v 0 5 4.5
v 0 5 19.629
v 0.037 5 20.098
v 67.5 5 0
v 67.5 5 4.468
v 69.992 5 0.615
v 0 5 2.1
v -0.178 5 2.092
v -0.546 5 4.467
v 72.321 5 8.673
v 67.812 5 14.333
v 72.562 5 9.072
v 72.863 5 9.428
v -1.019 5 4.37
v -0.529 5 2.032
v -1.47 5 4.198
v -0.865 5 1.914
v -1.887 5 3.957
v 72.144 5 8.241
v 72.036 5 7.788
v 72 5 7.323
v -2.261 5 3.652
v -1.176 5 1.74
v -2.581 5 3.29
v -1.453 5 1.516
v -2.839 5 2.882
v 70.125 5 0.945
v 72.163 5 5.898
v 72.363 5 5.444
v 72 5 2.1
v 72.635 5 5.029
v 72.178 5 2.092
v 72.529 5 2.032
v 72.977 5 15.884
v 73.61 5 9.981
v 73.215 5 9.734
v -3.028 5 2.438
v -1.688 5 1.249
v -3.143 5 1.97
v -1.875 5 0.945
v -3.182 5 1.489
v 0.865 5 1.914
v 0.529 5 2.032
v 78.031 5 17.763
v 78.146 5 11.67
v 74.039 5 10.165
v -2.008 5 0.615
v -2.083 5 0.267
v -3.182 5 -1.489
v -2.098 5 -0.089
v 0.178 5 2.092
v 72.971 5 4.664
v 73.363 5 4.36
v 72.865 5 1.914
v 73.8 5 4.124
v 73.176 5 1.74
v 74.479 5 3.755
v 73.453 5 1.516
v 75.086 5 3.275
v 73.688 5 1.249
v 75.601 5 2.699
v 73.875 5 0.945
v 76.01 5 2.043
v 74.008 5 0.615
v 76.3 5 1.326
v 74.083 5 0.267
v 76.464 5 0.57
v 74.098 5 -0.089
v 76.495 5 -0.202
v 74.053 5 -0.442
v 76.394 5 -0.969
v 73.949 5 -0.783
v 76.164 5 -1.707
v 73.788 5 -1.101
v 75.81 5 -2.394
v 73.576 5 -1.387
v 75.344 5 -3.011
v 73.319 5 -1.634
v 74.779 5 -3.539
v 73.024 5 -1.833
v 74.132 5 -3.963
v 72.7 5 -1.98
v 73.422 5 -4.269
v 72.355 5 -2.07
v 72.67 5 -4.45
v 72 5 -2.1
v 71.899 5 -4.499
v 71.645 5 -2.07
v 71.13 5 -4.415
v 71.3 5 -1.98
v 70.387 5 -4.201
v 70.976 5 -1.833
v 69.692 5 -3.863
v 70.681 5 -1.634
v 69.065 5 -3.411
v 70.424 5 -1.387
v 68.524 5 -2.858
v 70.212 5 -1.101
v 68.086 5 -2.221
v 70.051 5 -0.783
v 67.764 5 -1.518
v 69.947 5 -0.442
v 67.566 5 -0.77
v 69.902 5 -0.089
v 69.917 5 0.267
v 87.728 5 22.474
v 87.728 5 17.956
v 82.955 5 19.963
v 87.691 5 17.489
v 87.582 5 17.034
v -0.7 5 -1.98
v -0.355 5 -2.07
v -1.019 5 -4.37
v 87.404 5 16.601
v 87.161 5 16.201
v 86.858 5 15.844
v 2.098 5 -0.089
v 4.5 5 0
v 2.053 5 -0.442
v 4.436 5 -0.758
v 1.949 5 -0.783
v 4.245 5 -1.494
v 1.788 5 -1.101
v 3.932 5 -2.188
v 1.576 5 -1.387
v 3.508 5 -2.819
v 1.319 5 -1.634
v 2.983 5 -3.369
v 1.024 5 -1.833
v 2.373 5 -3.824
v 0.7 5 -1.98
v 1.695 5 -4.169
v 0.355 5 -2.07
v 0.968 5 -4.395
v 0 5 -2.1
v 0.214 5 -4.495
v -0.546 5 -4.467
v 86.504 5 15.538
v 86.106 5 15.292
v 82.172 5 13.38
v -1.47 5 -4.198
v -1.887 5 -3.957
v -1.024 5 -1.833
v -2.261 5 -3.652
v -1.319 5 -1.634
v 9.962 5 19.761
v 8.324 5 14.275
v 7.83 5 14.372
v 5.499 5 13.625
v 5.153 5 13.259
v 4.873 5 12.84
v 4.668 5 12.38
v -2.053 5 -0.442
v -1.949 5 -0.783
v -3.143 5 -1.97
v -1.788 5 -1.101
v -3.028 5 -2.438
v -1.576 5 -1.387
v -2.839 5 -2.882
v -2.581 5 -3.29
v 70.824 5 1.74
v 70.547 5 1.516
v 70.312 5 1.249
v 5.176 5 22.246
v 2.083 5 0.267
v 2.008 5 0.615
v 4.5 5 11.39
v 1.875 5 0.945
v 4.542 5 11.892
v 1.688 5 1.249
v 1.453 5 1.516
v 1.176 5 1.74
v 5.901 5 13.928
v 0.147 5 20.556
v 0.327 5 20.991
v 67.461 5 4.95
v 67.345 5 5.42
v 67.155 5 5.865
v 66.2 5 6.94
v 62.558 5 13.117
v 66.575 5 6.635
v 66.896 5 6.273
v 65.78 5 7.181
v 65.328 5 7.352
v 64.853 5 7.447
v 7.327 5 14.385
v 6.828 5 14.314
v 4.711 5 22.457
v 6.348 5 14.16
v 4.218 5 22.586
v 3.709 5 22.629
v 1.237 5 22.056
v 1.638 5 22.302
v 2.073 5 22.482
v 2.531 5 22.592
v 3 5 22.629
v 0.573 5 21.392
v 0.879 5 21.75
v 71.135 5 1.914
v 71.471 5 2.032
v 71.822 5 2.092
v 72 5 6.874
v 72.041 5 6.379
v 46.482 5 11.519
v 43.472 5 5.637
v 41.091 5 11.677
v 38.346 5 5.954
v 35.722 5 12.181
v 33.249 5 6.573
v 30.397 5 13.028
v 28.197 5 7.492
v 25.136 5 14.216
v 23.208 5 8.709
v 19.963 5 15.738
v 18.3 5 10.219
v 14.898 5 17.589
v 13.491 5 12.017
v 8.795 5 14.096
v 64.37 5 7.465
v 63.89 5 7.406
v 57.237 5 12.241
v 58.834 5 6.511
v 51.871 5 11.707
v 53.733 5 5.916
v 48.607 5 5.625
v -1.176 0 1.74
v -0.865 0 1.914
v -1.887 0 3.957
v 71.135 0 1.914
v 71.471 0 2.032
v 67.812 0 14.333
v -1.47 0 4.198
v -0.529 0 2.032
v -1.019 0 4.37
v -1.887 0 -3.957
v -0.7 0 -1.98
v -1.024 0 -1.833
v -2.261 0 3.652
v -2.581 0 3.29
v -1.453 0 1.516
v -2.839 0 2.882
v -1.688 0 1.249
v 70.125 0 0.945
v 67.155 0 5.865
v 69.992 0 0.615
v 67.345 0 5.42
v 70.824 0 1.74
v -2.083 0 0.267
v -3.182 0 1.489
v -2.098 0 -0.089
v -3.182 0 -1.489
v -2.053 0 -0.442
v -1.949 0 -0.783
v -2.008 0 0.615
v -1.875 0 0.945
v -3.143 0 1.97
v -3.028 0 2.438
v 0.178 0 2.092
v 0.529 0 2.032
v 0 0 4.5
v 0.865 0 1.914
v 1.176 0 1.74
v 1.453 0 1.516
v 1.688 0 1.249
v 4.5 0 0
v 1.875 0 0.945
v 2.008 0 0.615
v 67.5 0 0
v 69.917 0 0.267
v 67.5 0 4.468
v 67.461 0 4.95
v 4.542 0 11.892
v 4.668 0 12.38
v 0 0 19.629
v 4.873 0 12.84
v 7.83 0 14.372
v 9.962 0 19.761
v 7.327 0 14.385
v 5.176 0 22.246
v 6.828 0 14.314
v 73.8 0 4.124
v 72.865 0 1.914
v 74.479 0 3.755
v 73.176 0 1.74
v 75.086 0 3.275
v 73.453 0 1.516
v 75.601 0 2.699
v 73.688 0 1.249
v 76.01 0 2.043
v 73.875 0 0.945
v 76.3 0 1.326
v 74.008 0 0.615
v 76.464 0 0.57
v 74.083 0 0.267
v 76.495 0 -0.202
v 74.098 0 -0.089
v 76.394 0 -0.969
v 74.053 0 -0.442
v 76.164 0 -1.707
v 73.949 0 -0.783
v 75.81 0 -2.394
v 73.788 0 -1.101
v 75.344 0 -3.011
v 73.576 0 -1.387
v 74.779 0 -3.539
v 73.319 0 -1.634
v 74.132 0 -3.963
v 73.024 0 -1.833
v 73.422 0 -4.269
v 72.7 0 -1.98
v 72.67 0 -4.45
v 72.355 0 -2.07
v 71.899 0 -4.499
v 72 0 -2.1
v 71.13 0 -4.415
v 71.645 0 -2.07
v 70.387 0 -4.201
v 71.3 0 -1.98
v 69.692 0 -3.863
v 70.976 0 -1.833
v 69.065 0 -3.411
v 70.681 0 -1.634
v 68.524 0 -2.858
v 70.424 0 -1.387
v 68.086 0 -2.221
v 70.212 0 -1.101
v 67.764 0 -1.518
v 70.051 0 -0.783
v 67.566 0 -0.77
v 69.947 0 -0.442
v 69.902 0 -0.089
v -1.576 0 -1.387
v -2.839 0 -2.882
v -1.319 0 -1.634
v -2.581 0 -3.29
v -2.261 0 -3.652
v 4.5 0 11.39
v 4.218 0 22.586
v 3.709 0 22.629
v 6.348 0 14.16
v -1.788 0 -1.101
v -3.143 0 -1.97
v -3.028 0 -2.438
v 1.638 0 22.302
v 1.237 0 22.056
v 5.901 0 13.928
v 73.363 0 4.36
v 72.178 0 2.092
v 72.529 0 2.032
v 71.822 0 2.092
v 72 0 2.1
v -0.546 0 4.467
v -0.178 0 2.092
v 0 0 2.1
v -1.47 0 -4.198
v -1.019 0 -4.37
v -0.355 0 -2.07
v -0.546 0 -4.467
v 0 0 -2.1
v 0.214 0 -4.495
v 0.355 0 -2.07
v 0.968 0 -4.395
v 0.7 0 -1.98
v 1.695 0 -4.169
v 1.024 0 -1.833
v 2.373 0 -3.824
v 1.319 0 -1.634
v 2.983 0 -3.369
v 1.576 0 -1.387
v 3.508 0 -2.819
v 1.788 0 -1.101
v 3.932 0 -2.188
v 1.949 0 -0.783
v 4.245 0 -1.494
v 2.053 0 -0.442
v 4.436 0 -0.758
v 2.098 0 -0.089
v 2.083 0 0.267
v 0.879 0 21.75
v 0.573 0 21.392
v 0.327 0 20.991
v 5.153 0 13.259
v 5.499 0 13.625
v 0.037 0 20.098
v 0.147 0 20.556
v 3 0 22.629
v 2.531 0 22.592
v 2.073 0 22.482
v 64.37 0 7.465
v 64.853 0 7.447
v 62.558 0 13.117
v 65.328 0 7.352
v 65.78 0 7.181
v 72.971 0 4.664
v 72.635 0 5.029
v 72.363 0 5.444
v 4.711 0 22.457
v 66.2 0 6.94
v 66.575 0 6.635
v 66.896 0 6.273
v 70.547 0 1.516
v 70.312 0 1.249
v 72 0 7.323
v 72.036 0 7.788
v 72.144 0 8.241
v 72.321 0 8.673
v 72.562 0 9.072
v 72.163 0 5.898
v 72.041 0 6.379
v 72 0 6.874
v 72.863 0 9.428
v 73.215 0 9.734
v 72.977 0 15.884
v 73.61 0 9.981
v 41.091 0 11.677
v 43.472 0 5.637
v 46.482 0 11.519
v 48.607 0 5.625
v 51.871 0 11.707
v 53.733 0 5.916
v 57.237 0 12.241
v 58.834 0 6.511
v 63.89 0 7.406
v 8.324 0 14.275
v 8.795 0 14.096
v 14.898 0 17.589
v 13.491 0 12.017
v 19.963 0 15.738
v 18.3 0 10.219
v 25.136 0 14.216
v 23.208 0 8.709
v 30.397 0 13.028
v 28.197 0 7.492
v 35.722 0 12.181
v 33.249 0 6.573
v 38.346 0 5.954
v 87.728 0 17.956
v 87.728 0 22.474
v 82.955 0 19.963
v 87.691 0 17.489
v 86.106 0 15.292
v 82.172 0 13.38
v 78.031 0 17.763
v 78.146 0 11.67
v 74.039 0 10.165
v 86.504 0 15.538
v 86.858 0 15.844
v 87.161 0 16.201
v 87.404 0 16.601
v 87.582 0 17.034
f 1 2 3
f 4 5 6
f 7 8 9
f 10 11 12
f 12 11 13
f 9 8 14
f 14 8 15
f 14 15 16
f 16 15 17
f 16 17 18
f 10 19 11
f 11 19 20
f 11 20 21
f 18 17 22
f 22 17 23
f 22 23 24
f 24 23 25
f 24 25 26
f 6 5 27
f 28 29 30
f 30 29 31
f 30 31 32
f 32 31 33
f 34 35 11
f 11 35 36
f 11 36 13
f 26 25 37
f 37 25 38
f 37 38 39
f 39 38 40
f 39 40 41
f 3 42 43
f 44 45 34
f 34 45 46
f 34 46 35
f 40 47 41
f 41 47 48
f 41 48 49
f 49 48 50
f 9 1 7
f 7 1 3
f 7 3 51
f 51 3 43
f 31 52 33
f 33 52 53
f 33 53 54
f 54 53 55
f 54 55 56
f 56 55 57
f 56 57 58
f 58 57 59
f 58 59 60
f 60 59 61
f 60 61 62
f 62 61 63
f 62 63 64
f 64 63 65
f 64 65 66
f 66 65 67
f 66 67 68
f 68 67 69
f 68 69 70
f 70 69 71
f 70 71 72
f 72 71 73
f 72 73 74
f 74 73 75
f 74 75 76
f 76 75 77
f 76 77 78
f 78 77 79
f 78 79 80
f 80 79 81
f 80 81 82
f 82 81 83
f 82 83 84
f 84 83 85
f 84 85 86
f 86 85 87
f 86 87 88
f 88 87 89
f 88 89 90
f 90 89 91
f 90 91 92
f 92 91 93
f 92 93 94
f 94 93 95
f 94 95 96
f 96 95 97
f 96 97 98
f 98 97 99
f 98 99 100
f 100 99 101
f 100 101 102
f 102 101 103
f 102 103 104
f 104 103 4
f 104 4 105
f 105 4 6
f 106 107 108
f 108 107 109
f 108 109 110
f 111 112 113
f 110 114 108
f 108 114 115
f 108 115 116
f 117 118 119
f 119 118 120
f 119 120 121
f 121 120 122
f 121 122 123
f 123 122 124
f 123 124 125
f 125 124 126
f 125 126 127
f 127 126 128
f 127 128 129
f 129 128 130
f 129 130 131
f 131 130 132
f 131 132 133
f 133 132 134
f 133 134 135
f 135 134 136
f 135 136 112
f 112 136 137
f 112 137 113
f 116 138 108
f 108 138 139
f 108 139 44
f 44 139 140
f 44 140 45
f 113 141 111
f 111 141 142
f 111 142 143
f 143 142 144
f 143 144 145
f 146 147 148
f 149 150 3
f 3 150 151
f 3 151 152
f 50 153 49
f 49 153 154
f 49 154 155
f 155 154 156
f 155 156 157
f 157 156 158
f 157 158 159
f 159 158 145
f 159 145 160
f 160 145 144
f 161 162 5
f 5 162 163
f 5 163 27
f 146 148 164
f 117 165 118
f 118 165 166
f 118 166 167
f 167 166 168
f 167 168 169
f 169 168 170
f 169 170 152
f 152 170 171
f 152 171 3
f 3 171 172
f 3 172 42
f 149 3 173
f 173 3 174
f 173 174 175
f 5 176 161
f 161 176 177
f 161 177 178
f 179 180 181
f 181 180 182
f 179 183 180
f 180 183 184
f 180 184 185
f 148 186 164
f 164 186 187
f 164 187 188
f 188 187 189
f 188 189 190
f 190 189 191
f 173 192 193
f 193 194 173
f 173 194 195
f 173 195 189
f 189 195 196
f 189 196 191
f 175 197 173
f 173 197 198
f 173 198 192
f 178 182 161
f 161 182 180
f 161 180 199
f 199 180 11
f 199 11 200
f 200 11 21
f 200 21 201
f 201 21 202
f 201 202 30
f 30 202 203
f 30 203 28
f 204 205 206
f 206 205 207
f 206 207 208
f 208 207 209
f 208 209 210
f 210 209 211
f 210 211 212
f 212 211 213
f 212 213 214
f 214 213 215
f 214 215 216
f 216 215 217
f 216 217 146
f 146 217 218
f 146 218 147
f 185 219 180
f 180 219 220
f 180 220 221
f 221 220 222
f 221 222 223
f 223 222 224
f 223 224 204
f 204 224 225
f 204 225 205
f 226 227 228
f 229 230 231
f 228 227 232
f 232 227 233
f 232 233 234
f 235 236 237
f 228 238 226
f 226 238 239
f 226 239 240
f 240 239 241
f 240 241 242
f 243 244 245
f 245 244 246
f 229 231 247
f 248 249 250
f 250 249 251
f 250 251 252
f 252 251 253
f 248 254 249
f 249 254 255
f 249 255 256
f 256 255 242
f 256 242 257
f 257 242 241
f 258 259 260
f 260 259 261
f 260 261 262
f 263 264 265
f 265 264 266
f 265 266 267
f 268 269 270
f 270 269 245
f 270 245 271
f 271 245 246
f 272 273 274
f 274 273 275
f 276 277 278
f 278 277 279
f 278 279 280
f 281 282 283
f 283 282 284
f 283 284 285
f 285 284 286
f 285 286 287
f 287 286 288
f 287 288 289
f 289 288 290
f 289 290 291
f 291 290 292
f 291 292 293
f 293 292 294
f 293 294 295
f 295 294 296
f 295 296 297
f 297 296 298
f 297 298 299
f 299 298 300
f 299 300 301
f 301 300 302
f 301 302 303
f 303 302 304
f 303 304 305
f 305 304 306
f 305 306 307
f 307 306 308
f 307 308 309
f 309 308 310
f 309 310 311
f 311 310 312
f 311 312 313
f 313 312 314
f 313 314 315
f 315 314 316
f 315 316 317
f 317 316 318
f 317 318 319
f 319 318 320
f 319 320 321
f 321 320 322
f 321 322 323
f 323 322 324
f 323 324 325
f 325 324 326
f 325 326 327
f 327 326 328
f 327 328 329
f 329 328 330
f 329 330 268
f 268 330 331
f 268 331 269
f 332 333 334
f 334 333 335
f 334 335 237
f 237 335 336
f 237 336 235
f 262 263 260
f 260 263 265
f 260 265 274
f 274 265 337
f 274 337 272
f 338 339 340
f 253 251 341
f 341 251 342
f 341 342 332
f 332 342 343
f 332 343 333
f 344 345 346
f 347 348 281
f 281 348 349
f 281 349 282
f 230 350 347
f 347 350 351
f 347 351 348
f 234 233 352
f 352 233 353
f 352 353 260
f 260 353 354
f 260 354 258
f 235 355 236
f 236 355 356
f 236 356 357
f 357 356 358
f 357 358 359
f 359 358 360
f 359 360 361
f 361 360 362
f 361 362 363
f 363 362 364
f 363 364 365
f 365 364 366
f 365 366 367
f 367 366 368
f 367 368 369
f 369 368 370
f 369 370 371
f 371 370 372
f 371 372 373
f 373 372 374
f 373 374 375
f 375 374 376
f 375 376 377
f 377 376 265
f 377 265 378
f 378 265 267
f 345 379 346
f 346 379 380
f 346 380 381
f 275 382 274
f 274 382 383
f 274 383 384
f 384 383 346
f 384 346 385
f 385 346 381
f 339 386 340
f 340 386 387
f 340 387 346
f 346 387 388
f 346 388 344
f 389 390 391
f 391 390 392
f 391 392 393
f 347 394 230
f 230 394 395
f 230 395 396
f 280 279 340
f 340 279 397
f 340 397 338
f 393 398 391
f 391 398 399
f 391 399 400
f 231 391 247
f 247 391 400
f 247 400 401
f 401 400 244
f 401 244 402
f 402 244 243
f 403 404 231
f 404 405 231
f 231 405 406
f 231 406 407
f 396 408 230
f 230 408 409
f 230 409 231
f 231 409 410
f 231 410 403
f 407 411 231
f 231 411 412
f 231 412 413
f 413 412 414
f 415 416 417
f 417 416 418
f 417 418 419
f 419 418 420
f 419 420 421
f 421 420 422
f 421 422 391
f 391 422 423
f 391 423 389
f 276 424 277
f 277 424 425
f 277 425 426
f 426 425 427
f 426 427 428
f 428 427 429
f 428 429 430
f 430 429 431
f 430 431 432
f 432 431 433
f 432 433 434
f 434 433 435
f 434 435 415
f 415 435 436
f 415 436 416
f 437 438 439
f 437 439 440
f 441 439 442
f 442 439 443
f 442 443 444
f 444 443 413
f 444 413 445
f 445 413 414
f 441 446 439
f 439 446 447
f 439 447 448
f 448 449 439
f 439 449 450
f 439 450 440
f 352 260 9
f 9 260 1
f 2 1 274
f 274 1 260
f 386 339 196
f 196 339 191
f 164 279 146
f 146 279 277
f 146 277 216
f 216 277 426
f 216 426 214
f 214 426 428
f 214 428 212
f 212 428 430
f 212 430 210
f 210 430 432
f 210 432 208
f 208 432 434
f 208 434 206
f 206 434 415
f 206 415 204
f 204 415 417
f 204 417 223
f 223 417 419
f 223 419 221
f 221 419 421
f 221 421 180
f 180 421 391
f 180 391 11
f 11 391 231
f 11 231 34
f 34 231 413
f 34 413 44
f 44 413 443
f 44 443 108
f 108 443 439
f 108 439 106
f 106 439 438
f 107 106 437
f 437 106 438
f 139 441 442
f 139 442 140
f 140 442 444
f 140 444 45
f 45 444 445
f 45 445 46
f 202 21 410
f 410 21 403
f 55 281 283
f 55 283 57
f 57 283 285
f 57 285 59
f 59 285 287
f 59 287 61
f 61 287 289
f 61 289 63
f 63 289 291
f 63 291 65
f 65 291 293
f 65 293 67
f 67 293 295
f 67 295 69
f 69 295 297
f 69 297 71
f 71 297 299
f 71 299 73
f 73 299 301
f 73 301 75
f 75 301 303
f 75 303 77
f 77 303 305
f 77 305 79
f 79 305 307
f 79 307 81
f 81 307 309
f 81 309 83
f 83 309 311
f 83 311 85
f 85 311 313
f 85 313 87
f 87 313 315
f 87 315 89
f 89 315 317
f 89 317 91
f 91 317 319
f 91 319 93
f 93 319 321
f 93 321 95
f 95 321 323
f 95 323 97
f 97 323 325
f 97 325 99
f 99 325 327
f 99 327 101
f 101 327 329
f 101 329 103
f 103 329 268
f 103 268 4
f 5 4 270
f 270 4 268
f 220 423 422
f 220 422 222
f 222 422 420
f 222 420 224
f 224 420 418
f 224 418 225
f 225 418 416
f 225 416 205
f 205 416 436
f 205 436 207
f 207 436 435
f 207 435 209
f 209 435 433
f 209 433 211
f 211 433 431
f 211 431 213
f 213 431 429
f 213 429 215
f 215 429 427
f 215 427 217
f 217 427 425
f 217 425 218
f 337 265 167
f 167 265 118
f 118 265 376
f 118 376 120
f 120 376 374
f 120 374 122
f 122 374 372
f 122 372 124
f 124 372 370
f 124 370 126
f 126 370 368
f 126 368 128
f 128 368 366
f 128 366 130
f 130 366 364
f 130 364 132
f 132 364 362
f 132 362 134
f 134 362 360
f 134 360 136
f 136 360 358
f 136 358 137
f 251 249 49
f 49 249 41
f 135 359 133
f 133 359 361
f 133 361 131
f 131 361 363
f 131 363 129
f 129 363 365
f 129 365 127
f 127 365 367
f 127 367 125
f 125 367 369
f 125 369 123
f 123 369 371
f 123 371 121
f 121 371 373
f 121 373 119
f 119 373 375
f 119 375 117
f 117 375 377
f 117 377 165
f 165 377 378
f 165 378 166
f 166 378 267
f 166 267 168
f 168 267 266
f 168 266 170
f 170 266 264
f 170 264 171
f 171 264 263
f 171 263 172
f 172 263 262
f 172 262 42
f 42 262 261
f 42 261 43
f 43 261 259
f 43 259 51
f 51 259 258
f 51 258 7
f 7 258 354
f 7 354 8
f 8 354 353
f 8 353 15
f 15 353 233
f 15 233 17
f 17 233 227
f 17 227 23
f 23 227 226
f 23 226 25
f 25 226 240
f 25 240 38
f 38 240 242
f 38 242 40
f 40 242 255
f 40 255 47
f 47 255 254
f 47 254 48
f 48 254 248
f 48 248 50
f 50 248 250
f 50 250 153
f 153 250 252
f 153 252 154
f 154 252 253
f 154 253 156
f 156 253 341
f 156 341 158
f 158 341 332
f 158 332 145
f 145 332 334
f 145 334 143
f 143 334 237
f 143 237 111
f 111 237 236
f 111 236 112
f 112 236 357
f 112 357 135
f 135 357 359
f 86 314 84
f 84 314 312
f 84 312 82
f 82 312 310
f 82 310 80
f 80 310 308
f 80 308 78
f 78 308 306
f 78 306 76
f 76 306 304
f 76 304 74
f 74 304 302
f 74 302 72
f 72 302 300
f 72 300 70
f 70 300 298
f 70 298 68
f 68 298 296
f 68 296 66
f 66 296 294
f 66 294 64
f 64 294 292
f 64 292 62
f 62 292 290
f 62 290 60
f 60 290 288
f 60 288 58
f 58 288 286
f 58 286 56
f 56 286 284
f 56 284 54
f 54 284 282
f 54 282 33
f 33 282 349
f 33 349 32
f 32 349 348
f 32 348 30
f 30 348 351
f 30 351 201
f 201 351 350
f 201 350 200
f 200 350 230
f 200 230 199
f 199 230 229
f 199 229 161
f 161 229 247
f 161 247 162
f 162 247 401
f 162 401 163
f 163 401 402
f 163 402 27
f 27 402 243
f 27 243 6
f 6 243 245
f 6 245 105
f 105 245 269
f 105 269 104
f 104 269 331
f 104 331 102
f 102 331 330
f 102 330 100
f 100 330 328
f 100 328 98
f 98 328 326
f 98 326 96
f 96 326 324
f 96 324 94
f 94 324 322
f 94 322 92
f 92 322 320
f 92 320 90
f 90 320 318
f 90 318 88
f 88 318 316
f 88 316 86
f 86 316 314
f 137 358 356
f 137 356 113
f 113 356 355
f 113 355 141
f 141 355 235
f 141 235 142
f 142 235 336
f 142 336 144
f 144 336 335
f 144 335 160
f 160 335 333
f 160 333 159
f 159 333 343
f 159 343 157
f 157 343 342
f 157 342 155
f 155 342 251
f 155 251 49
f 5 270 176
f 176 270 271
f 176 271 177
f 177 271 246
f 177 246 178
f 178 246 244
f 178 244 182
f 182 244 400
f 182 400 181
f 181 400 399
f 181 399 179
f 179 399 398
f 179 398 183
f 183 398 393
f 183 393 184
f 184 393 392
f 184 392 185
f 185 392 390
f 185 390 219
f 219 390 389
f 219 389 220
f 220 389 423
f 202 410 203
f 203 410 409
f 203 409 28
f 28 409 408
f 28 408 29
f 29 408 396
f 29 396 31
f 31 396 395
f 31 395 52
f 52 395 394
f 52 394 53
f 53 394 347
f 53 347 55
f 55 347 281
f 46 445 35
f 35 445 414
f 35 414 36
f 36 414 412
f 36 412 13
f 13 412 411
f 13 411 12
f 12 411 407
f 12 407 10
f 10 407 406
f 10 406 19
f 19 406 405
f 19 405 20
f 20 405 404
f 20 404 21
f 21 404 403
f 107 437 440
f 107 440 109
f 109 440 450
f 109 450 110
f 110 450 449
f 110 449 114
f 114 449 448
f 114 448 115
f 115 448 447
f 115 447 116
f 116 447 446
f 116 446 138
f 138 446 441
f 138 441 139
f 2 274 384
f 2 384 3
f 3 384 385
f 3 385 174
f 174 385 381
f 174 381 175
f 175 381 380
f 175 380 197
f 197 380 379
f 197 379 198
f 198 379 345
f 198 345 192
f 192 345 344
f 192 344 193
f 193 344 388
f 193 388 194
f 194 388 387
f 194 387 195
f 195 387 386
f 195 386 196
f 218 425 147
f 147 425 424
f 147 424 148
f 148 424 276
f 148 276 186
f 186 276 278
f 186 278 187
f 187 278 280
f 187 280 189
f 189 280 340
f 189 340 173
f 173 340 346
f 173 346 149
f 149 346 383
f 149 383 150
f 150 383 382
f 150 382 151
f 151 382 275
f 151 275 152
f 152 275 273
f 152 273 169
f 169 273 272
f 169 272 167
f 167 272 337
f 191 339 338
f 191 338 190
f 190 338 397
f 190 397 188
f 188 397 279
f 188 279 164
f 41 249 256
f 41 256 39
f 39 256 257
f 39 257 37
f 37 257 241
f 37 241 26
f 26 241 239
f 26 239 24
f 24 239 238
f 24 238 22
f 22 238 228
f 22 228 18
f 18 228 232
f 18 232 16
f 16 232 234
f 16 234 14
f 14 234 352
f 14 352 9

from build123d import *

# Parameters (mm, degrees)
SKETCH1_R           = 2.1
BOSS_EXTRUDE1_DEPTH = 5
FILLET1_R           = 3


with BuildPart() as part:
    # Sketch1 → Boss-Extrude1 (new body)
    with BuildSketch(Plane(origin=(0, 0, 0), x_dir=(1, 0, 0), z_dir=(0, 1, 0))):
        with BuildLine():
            Line((72, -9.503100502), (72, -4.5))
            ThreePointArc((72, -4.5), (75.181980515, 3.181980515), (67.5, 0))
            Line((67.5, 0), (67.5, -8.236120217))
            ThreePointArc((67.5, -8.236120217), (35.23528273, -6.295142783), (4.5, -16.301229399))
            Line((4.5, -16.301229399), (4.5, 0))
            ThreePointArc((4.5, 0), (1.722075446, 4.157457896), (-3.181980515, 3.181980515))
            Line((-3.181980515, 3.181980515), (-3.181980515, -3.181980515))
            ThreePointArc((-3.181980515, -3.181980515), (-1.722075446, -4.157457896), (0, -4.5))
            Line((0, -4.5), (0, -22.629109119))
            Line((0, -22.629109119), (4.5, -22.629109119))
            ThreePointArc((4.5, -22.629109119), (46.093164739, -11.519039327), (87.727526709, -22.473714454))
            Line((87.727526709, -22.473714454), (87.727526709, -16.152250539))
            ThreePointArc((87.727526709, -16.152250539), (80.027772069, -12.439738504), (72, -9.503100502))
        make_face()
        with Locations(Location((0, 0, 0), (0, 0, 270))):
            Circle(SKETCH1_R, mode=Mode.SUBTRACT)
        with Locations(Location((72, 0, 0), (0, 0, 270))):
            Circle(SKETCH1_R, mode=Mode.SUBTRACT)
    extrude(amount=BOSS_EXTRUDE1_DEPTH)

    # Fillet1
    fillet1_edges = [part.edges().sort_by_distance(p)[0] for p in [
        (-3.181980515, 2.5, 3.181980515),
        (-3.181980515, 2.5, -3.181980515),
        (4.5, 2.5, 16.301229399),
        (67.5, 2.5, 8.236120217),
        (72, 2.5, 4.5),
        (72, 2.5, 9.503100502),
        (87.727526709, 2.5, 16.152250539),
        (4.5, 2.5, 22.629109119),
        (0, 2.5, 22.629109119),
    ]]
    fillet(fillet1_edges, radius=FILLET1_R)


solid = part.part
